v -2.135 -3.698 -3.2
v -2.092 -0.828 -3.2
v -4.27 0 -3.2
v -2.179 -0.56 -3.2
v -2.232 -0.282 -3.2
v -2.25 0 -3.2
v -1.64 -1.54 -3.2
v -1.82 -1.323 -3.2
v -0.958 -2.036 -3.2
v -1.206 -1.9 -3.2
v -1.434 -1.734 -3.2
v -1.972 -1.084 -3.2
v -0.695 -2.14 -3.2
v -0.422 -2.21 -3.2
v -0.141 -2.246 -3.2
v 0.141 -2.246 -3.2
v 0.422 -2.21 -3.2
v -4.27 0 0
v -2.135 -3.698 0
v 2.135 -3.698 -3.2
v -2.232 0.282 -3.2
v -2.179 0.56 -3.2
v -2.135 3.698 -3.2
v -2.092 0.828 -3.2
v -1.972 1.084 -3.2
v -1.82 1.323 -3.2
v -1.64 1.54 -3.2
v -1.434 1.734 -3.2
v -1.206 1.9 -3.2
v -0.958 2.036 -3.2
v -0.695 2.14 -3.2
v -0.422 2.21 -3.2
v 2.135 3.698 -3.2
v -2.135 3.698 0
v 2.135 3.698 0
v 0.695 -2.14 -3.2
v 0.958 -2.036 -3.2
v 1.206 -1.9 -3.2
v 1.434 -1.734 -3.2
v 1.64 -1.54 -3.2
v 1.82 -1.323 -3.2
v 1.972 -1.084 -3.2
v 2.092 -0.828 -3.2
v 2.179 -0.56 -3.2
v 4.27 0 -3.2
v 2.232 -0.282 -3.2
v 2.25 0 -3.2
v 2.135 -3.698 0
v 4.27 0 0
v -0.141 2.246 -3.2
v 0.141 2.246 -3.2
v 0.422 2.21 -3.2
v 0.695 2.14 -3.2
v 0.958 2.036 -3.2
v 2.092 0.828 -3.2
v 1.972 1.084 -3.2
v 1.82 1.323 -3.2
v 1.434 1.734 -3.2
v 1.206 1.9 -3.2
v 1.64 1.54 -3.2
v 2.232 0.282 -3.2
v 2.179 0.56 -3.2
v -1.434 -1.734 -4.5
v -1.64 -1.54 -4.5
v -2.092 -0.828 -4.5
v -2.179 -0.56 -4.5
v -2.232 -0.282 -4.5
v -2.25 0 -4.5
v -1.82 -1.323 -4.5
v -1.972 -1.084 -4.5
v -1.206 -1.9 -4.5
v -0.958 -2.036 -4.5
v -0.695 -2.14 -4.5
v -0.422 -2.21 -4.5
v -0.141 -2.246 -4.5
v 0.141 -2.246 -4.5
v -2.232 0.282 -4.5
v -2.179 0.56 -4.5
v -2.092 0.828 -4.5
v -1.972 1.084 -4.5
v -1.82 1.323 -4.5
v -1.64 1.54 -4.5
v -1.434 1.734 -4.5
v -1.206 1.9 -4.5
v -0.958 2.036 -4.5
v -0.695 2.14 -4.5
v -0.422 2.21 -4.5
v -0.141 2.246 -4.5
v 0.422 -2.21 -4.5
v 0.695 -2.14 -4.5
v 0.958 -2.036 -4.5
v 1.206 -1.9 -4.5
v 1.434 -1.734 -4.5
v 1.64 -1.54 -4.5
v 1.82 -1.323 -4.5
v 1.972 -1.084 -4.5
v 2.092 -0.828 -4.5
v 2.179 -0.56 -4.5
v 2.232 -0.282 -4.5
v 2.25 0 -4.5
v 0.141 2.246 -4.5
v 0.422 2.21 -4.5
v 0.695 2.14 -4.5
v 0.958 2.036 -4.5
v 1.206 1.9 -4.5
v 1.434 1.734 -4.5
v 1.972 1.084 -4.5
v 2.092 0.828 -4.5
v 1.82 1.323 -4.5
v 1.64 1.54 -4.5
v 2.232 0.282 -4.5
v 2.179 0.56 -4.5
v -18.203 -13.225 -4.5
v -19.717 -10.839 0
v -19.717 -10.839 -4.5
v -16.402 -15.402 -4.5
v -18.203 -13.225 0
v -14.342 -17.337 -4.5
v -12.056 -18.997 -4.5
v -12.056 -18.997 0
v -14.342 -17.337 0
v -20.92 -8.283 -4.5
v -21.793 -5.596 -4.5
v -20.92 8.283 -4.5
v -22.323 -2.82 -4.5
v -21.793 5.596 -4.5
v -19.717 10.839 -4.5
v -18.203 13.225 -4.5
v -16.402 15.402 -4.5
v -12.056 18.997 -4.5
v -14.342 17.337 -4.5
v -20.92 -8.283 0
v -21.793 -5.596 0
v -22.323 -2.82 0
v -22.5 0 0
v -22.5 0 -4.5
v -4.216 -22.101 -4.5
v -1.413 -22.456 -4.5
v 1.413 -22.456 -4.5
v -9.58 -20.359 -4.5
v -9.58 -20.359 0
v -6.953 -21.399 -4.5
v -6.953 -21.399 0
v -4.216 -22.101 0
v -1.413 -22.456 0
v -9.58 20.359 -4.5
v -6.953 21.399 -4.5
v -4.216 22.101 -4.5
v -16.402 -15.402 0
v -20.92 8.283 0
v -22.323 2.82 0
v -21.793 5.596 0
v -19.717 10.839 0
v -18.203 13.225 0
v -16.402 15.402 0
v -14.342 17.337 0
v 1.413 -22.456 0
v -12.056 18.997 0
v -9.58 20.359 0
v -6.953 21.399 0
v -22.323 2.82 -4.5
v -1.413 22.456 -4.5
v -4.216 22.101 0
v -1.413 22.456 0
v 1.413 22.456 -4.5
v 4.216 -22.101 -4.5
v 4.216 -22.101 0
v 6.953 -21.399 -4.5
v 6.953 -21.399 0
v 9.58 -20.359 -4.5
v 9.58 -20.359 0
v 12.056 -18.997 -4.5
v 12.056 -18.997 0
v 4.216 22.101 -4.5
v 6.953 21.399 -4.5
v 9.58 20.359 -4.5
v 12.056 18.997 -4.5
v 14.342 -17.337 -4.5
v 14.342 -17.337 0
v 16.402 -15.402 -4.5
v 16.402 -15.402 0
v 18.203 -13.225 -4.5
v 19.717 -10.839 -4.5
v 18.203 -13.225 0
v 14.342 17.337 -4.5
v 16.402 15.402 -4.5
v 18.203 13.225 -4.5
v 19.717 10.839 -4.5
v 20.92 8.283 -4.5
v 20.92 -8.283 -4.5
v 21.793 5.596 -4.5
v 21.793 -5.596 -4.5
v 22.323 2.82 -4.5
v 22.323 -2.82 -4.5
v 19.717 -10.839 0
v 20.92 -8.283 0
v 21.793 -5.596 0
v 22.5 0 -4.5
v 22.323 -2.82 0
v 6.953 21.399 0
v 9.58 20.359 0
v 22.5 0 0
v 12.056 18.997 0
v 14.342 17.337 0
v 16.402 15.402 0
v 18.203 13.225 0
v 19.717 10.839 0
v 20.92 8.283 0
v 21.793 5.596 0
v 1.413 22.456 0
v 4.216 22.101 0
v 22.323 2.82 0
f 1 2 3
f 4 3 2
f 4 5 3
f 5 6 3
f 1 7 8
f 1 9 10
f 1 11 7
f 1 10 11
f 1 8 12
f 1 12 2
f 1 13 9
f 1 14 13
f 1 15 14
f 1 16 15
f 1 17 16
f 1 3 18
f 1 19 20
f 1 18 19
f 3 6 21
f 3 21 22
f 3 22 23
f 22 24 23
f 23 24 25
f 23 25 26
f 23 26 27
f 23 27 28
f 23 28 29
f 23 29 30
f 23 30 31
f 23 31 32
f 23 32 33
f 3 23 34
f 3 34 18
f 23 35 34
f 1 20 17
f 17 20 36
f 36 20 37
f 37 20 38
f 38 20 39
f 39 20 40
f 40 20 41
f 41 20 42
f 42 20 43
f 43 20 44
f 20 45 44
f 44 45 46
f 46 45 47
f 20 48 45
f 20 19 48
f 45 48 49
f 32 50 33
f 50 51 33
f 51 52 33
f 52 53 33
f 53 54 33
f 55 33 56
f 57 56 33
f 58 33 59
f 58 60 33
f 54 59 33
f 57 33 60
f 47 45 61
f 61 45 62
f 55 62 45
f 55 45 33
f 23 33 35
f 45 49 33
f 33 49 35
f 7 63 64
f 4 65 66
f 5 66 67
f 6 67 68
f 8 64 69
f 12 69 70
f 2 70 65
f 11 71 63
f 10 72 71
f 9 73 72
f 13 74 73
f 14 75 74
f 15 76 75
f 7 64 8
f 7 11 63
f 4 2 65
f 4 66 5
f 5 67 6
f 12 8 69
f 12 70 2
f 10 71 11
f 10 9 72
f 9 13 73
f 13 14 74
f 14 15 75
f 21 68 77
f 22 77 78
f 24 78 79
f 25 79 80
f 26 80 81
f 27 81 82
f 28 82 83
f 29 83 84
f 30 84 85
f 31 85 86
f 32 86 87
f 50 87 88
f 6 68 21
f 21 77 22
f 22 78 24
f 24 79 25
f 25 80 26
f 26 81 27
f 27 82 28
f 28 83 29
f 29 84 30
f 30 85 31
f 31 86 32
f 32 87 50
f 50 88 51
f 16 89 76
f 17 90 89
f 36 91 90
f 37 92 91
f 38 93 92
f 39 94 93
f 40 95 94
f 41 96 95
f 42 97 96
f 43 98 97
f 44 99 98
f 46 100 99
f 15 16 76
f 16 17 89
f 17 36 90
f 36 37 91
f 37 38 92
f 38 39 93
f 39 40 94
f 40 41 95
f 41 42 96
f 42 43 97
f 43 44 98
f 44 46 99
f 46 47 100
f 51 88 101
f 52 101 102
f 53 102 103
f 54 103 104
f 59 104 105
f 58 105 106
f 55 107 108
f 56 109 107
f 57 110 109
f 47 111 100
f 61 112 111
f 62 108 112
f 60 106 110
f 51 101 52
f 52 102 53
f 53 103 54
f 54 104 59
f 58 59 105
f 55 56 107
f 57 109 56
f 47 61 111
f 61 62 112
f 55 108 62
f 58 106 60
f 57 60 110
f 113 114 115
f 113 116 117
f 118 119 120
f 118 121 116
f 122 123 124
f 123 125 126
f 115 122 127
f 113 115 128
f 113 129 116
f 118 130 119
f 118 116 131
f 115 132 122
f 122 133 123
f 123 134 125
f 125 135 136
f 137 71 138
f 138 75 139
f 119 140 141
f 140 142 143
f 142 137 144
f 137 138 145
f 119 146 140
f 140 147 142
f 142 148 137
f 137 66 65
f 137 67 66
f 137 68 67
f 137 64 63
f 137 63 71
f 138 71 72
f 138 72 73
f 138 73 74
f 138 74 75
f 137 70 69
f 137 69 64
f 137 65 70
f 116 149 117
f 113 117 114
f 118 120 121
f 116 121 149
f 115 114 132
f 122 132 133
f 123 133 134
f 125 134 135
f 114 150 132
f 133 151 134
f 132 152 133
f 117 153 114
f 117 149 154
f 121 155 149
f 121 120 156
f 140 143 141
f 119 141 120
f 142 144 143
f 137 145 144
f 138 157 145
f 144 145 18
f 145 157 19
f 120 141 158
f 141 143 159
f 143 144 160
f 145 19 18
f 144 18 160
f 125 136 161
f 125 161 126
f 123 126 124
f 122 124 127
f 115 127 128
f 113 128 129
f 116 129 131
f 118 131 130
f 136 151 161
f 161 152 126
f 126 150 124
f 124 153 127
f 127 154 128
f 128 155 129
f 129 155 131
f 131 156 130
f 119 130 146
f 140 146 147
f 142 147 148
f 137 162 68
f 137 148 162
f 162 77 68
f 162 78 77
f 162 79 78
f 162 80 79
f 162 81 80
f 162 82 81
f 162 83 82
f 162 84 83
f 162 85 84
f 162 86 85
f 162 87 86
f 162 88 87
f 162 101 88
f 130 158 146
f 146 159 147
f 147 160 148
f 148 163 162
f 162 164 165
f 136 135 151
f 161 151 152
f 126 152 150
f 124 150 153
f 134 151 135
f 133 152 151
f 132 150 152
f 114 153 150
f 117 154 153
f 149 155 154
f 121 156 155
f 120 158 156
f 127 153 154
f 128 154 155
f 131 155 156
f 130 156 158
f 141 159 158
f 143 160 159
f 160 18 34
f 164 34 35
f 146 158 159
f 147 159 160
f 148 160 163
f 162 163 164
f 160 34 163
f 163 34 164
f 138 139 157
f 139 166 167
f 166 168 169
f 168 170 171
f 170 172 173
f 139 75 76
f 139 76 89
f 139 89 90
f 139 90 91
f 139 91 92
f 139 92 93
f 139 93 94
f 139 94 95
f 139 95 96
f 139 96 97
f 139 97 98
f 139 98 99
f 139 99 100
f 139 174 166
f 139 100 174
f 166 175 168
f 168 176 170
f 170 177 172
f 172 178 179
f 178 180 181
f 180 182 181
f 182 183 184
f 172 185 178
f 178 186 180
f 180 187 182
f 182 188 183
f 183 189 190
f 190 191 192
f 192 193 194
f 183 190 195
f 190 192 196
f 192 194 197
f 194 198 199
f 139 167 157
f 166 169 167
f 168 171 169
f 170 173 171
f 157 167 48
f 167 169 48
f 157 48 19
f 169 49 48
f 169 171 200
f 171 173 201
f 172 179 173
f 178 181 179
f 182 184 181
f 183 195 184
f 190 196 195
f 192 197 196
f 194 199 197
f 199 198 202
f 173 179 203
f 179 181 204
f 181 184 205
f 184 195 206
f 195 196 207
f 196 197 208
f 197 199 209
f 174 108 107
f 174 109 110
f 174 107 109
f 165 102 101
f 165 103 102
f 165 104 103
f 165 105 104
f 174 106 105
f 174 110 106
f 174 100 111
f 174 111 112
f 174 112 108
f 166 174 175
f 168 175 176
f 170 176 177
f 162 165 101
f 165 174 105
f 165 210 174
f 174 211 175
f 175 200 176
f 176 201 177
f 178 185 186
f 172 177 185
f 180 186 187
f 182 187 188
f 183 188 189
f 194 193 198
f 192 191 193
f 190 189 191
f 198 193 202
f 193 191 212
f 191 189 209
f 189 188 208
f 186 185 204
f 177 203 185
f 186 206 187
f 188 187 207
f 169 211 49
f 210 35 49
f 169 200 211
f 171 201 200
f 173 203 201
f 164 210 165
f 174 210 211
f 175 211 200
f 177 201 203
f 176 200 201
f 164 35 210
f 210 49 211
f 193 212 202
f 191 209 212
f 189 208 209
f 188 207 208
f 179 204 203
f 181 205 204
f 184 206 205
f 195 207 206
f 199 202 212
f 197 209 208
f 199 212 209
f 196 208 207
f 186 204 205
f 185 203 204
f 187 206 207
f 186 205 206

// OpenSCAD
$fn = 50;

difference() {
	union() {
		translate(v = [0, 0, -4.5]) {
			cylinder(h = 4.5, r = 22.5);
		}
	}
	union() {
		translate(v = [0, 0, 0]) {
			rotate(a = [0, 0, 0]) {
				difference() {
					union() {
						translate(v = [0, 0, -3.2]) {
							linear_extrude(height = 3.2) {
								polygon(points = [[4.2698, 0.0], [2.1349000000000005, 3.697755269078796], [-2.134899999999999, 3.6977552690787965], [-4.2698, 5.228996902999369e-16], [-2.134900000000002, -3.6977552690787956], [2.1348999999999974, -3.697755269078798]]);
							}
						}
					}
					union();
				}
			}
		}
		#translate(v = [0, 0, -100.0]) {
			cylinder(h = 200, r = 2.25);
		}
	}
}
